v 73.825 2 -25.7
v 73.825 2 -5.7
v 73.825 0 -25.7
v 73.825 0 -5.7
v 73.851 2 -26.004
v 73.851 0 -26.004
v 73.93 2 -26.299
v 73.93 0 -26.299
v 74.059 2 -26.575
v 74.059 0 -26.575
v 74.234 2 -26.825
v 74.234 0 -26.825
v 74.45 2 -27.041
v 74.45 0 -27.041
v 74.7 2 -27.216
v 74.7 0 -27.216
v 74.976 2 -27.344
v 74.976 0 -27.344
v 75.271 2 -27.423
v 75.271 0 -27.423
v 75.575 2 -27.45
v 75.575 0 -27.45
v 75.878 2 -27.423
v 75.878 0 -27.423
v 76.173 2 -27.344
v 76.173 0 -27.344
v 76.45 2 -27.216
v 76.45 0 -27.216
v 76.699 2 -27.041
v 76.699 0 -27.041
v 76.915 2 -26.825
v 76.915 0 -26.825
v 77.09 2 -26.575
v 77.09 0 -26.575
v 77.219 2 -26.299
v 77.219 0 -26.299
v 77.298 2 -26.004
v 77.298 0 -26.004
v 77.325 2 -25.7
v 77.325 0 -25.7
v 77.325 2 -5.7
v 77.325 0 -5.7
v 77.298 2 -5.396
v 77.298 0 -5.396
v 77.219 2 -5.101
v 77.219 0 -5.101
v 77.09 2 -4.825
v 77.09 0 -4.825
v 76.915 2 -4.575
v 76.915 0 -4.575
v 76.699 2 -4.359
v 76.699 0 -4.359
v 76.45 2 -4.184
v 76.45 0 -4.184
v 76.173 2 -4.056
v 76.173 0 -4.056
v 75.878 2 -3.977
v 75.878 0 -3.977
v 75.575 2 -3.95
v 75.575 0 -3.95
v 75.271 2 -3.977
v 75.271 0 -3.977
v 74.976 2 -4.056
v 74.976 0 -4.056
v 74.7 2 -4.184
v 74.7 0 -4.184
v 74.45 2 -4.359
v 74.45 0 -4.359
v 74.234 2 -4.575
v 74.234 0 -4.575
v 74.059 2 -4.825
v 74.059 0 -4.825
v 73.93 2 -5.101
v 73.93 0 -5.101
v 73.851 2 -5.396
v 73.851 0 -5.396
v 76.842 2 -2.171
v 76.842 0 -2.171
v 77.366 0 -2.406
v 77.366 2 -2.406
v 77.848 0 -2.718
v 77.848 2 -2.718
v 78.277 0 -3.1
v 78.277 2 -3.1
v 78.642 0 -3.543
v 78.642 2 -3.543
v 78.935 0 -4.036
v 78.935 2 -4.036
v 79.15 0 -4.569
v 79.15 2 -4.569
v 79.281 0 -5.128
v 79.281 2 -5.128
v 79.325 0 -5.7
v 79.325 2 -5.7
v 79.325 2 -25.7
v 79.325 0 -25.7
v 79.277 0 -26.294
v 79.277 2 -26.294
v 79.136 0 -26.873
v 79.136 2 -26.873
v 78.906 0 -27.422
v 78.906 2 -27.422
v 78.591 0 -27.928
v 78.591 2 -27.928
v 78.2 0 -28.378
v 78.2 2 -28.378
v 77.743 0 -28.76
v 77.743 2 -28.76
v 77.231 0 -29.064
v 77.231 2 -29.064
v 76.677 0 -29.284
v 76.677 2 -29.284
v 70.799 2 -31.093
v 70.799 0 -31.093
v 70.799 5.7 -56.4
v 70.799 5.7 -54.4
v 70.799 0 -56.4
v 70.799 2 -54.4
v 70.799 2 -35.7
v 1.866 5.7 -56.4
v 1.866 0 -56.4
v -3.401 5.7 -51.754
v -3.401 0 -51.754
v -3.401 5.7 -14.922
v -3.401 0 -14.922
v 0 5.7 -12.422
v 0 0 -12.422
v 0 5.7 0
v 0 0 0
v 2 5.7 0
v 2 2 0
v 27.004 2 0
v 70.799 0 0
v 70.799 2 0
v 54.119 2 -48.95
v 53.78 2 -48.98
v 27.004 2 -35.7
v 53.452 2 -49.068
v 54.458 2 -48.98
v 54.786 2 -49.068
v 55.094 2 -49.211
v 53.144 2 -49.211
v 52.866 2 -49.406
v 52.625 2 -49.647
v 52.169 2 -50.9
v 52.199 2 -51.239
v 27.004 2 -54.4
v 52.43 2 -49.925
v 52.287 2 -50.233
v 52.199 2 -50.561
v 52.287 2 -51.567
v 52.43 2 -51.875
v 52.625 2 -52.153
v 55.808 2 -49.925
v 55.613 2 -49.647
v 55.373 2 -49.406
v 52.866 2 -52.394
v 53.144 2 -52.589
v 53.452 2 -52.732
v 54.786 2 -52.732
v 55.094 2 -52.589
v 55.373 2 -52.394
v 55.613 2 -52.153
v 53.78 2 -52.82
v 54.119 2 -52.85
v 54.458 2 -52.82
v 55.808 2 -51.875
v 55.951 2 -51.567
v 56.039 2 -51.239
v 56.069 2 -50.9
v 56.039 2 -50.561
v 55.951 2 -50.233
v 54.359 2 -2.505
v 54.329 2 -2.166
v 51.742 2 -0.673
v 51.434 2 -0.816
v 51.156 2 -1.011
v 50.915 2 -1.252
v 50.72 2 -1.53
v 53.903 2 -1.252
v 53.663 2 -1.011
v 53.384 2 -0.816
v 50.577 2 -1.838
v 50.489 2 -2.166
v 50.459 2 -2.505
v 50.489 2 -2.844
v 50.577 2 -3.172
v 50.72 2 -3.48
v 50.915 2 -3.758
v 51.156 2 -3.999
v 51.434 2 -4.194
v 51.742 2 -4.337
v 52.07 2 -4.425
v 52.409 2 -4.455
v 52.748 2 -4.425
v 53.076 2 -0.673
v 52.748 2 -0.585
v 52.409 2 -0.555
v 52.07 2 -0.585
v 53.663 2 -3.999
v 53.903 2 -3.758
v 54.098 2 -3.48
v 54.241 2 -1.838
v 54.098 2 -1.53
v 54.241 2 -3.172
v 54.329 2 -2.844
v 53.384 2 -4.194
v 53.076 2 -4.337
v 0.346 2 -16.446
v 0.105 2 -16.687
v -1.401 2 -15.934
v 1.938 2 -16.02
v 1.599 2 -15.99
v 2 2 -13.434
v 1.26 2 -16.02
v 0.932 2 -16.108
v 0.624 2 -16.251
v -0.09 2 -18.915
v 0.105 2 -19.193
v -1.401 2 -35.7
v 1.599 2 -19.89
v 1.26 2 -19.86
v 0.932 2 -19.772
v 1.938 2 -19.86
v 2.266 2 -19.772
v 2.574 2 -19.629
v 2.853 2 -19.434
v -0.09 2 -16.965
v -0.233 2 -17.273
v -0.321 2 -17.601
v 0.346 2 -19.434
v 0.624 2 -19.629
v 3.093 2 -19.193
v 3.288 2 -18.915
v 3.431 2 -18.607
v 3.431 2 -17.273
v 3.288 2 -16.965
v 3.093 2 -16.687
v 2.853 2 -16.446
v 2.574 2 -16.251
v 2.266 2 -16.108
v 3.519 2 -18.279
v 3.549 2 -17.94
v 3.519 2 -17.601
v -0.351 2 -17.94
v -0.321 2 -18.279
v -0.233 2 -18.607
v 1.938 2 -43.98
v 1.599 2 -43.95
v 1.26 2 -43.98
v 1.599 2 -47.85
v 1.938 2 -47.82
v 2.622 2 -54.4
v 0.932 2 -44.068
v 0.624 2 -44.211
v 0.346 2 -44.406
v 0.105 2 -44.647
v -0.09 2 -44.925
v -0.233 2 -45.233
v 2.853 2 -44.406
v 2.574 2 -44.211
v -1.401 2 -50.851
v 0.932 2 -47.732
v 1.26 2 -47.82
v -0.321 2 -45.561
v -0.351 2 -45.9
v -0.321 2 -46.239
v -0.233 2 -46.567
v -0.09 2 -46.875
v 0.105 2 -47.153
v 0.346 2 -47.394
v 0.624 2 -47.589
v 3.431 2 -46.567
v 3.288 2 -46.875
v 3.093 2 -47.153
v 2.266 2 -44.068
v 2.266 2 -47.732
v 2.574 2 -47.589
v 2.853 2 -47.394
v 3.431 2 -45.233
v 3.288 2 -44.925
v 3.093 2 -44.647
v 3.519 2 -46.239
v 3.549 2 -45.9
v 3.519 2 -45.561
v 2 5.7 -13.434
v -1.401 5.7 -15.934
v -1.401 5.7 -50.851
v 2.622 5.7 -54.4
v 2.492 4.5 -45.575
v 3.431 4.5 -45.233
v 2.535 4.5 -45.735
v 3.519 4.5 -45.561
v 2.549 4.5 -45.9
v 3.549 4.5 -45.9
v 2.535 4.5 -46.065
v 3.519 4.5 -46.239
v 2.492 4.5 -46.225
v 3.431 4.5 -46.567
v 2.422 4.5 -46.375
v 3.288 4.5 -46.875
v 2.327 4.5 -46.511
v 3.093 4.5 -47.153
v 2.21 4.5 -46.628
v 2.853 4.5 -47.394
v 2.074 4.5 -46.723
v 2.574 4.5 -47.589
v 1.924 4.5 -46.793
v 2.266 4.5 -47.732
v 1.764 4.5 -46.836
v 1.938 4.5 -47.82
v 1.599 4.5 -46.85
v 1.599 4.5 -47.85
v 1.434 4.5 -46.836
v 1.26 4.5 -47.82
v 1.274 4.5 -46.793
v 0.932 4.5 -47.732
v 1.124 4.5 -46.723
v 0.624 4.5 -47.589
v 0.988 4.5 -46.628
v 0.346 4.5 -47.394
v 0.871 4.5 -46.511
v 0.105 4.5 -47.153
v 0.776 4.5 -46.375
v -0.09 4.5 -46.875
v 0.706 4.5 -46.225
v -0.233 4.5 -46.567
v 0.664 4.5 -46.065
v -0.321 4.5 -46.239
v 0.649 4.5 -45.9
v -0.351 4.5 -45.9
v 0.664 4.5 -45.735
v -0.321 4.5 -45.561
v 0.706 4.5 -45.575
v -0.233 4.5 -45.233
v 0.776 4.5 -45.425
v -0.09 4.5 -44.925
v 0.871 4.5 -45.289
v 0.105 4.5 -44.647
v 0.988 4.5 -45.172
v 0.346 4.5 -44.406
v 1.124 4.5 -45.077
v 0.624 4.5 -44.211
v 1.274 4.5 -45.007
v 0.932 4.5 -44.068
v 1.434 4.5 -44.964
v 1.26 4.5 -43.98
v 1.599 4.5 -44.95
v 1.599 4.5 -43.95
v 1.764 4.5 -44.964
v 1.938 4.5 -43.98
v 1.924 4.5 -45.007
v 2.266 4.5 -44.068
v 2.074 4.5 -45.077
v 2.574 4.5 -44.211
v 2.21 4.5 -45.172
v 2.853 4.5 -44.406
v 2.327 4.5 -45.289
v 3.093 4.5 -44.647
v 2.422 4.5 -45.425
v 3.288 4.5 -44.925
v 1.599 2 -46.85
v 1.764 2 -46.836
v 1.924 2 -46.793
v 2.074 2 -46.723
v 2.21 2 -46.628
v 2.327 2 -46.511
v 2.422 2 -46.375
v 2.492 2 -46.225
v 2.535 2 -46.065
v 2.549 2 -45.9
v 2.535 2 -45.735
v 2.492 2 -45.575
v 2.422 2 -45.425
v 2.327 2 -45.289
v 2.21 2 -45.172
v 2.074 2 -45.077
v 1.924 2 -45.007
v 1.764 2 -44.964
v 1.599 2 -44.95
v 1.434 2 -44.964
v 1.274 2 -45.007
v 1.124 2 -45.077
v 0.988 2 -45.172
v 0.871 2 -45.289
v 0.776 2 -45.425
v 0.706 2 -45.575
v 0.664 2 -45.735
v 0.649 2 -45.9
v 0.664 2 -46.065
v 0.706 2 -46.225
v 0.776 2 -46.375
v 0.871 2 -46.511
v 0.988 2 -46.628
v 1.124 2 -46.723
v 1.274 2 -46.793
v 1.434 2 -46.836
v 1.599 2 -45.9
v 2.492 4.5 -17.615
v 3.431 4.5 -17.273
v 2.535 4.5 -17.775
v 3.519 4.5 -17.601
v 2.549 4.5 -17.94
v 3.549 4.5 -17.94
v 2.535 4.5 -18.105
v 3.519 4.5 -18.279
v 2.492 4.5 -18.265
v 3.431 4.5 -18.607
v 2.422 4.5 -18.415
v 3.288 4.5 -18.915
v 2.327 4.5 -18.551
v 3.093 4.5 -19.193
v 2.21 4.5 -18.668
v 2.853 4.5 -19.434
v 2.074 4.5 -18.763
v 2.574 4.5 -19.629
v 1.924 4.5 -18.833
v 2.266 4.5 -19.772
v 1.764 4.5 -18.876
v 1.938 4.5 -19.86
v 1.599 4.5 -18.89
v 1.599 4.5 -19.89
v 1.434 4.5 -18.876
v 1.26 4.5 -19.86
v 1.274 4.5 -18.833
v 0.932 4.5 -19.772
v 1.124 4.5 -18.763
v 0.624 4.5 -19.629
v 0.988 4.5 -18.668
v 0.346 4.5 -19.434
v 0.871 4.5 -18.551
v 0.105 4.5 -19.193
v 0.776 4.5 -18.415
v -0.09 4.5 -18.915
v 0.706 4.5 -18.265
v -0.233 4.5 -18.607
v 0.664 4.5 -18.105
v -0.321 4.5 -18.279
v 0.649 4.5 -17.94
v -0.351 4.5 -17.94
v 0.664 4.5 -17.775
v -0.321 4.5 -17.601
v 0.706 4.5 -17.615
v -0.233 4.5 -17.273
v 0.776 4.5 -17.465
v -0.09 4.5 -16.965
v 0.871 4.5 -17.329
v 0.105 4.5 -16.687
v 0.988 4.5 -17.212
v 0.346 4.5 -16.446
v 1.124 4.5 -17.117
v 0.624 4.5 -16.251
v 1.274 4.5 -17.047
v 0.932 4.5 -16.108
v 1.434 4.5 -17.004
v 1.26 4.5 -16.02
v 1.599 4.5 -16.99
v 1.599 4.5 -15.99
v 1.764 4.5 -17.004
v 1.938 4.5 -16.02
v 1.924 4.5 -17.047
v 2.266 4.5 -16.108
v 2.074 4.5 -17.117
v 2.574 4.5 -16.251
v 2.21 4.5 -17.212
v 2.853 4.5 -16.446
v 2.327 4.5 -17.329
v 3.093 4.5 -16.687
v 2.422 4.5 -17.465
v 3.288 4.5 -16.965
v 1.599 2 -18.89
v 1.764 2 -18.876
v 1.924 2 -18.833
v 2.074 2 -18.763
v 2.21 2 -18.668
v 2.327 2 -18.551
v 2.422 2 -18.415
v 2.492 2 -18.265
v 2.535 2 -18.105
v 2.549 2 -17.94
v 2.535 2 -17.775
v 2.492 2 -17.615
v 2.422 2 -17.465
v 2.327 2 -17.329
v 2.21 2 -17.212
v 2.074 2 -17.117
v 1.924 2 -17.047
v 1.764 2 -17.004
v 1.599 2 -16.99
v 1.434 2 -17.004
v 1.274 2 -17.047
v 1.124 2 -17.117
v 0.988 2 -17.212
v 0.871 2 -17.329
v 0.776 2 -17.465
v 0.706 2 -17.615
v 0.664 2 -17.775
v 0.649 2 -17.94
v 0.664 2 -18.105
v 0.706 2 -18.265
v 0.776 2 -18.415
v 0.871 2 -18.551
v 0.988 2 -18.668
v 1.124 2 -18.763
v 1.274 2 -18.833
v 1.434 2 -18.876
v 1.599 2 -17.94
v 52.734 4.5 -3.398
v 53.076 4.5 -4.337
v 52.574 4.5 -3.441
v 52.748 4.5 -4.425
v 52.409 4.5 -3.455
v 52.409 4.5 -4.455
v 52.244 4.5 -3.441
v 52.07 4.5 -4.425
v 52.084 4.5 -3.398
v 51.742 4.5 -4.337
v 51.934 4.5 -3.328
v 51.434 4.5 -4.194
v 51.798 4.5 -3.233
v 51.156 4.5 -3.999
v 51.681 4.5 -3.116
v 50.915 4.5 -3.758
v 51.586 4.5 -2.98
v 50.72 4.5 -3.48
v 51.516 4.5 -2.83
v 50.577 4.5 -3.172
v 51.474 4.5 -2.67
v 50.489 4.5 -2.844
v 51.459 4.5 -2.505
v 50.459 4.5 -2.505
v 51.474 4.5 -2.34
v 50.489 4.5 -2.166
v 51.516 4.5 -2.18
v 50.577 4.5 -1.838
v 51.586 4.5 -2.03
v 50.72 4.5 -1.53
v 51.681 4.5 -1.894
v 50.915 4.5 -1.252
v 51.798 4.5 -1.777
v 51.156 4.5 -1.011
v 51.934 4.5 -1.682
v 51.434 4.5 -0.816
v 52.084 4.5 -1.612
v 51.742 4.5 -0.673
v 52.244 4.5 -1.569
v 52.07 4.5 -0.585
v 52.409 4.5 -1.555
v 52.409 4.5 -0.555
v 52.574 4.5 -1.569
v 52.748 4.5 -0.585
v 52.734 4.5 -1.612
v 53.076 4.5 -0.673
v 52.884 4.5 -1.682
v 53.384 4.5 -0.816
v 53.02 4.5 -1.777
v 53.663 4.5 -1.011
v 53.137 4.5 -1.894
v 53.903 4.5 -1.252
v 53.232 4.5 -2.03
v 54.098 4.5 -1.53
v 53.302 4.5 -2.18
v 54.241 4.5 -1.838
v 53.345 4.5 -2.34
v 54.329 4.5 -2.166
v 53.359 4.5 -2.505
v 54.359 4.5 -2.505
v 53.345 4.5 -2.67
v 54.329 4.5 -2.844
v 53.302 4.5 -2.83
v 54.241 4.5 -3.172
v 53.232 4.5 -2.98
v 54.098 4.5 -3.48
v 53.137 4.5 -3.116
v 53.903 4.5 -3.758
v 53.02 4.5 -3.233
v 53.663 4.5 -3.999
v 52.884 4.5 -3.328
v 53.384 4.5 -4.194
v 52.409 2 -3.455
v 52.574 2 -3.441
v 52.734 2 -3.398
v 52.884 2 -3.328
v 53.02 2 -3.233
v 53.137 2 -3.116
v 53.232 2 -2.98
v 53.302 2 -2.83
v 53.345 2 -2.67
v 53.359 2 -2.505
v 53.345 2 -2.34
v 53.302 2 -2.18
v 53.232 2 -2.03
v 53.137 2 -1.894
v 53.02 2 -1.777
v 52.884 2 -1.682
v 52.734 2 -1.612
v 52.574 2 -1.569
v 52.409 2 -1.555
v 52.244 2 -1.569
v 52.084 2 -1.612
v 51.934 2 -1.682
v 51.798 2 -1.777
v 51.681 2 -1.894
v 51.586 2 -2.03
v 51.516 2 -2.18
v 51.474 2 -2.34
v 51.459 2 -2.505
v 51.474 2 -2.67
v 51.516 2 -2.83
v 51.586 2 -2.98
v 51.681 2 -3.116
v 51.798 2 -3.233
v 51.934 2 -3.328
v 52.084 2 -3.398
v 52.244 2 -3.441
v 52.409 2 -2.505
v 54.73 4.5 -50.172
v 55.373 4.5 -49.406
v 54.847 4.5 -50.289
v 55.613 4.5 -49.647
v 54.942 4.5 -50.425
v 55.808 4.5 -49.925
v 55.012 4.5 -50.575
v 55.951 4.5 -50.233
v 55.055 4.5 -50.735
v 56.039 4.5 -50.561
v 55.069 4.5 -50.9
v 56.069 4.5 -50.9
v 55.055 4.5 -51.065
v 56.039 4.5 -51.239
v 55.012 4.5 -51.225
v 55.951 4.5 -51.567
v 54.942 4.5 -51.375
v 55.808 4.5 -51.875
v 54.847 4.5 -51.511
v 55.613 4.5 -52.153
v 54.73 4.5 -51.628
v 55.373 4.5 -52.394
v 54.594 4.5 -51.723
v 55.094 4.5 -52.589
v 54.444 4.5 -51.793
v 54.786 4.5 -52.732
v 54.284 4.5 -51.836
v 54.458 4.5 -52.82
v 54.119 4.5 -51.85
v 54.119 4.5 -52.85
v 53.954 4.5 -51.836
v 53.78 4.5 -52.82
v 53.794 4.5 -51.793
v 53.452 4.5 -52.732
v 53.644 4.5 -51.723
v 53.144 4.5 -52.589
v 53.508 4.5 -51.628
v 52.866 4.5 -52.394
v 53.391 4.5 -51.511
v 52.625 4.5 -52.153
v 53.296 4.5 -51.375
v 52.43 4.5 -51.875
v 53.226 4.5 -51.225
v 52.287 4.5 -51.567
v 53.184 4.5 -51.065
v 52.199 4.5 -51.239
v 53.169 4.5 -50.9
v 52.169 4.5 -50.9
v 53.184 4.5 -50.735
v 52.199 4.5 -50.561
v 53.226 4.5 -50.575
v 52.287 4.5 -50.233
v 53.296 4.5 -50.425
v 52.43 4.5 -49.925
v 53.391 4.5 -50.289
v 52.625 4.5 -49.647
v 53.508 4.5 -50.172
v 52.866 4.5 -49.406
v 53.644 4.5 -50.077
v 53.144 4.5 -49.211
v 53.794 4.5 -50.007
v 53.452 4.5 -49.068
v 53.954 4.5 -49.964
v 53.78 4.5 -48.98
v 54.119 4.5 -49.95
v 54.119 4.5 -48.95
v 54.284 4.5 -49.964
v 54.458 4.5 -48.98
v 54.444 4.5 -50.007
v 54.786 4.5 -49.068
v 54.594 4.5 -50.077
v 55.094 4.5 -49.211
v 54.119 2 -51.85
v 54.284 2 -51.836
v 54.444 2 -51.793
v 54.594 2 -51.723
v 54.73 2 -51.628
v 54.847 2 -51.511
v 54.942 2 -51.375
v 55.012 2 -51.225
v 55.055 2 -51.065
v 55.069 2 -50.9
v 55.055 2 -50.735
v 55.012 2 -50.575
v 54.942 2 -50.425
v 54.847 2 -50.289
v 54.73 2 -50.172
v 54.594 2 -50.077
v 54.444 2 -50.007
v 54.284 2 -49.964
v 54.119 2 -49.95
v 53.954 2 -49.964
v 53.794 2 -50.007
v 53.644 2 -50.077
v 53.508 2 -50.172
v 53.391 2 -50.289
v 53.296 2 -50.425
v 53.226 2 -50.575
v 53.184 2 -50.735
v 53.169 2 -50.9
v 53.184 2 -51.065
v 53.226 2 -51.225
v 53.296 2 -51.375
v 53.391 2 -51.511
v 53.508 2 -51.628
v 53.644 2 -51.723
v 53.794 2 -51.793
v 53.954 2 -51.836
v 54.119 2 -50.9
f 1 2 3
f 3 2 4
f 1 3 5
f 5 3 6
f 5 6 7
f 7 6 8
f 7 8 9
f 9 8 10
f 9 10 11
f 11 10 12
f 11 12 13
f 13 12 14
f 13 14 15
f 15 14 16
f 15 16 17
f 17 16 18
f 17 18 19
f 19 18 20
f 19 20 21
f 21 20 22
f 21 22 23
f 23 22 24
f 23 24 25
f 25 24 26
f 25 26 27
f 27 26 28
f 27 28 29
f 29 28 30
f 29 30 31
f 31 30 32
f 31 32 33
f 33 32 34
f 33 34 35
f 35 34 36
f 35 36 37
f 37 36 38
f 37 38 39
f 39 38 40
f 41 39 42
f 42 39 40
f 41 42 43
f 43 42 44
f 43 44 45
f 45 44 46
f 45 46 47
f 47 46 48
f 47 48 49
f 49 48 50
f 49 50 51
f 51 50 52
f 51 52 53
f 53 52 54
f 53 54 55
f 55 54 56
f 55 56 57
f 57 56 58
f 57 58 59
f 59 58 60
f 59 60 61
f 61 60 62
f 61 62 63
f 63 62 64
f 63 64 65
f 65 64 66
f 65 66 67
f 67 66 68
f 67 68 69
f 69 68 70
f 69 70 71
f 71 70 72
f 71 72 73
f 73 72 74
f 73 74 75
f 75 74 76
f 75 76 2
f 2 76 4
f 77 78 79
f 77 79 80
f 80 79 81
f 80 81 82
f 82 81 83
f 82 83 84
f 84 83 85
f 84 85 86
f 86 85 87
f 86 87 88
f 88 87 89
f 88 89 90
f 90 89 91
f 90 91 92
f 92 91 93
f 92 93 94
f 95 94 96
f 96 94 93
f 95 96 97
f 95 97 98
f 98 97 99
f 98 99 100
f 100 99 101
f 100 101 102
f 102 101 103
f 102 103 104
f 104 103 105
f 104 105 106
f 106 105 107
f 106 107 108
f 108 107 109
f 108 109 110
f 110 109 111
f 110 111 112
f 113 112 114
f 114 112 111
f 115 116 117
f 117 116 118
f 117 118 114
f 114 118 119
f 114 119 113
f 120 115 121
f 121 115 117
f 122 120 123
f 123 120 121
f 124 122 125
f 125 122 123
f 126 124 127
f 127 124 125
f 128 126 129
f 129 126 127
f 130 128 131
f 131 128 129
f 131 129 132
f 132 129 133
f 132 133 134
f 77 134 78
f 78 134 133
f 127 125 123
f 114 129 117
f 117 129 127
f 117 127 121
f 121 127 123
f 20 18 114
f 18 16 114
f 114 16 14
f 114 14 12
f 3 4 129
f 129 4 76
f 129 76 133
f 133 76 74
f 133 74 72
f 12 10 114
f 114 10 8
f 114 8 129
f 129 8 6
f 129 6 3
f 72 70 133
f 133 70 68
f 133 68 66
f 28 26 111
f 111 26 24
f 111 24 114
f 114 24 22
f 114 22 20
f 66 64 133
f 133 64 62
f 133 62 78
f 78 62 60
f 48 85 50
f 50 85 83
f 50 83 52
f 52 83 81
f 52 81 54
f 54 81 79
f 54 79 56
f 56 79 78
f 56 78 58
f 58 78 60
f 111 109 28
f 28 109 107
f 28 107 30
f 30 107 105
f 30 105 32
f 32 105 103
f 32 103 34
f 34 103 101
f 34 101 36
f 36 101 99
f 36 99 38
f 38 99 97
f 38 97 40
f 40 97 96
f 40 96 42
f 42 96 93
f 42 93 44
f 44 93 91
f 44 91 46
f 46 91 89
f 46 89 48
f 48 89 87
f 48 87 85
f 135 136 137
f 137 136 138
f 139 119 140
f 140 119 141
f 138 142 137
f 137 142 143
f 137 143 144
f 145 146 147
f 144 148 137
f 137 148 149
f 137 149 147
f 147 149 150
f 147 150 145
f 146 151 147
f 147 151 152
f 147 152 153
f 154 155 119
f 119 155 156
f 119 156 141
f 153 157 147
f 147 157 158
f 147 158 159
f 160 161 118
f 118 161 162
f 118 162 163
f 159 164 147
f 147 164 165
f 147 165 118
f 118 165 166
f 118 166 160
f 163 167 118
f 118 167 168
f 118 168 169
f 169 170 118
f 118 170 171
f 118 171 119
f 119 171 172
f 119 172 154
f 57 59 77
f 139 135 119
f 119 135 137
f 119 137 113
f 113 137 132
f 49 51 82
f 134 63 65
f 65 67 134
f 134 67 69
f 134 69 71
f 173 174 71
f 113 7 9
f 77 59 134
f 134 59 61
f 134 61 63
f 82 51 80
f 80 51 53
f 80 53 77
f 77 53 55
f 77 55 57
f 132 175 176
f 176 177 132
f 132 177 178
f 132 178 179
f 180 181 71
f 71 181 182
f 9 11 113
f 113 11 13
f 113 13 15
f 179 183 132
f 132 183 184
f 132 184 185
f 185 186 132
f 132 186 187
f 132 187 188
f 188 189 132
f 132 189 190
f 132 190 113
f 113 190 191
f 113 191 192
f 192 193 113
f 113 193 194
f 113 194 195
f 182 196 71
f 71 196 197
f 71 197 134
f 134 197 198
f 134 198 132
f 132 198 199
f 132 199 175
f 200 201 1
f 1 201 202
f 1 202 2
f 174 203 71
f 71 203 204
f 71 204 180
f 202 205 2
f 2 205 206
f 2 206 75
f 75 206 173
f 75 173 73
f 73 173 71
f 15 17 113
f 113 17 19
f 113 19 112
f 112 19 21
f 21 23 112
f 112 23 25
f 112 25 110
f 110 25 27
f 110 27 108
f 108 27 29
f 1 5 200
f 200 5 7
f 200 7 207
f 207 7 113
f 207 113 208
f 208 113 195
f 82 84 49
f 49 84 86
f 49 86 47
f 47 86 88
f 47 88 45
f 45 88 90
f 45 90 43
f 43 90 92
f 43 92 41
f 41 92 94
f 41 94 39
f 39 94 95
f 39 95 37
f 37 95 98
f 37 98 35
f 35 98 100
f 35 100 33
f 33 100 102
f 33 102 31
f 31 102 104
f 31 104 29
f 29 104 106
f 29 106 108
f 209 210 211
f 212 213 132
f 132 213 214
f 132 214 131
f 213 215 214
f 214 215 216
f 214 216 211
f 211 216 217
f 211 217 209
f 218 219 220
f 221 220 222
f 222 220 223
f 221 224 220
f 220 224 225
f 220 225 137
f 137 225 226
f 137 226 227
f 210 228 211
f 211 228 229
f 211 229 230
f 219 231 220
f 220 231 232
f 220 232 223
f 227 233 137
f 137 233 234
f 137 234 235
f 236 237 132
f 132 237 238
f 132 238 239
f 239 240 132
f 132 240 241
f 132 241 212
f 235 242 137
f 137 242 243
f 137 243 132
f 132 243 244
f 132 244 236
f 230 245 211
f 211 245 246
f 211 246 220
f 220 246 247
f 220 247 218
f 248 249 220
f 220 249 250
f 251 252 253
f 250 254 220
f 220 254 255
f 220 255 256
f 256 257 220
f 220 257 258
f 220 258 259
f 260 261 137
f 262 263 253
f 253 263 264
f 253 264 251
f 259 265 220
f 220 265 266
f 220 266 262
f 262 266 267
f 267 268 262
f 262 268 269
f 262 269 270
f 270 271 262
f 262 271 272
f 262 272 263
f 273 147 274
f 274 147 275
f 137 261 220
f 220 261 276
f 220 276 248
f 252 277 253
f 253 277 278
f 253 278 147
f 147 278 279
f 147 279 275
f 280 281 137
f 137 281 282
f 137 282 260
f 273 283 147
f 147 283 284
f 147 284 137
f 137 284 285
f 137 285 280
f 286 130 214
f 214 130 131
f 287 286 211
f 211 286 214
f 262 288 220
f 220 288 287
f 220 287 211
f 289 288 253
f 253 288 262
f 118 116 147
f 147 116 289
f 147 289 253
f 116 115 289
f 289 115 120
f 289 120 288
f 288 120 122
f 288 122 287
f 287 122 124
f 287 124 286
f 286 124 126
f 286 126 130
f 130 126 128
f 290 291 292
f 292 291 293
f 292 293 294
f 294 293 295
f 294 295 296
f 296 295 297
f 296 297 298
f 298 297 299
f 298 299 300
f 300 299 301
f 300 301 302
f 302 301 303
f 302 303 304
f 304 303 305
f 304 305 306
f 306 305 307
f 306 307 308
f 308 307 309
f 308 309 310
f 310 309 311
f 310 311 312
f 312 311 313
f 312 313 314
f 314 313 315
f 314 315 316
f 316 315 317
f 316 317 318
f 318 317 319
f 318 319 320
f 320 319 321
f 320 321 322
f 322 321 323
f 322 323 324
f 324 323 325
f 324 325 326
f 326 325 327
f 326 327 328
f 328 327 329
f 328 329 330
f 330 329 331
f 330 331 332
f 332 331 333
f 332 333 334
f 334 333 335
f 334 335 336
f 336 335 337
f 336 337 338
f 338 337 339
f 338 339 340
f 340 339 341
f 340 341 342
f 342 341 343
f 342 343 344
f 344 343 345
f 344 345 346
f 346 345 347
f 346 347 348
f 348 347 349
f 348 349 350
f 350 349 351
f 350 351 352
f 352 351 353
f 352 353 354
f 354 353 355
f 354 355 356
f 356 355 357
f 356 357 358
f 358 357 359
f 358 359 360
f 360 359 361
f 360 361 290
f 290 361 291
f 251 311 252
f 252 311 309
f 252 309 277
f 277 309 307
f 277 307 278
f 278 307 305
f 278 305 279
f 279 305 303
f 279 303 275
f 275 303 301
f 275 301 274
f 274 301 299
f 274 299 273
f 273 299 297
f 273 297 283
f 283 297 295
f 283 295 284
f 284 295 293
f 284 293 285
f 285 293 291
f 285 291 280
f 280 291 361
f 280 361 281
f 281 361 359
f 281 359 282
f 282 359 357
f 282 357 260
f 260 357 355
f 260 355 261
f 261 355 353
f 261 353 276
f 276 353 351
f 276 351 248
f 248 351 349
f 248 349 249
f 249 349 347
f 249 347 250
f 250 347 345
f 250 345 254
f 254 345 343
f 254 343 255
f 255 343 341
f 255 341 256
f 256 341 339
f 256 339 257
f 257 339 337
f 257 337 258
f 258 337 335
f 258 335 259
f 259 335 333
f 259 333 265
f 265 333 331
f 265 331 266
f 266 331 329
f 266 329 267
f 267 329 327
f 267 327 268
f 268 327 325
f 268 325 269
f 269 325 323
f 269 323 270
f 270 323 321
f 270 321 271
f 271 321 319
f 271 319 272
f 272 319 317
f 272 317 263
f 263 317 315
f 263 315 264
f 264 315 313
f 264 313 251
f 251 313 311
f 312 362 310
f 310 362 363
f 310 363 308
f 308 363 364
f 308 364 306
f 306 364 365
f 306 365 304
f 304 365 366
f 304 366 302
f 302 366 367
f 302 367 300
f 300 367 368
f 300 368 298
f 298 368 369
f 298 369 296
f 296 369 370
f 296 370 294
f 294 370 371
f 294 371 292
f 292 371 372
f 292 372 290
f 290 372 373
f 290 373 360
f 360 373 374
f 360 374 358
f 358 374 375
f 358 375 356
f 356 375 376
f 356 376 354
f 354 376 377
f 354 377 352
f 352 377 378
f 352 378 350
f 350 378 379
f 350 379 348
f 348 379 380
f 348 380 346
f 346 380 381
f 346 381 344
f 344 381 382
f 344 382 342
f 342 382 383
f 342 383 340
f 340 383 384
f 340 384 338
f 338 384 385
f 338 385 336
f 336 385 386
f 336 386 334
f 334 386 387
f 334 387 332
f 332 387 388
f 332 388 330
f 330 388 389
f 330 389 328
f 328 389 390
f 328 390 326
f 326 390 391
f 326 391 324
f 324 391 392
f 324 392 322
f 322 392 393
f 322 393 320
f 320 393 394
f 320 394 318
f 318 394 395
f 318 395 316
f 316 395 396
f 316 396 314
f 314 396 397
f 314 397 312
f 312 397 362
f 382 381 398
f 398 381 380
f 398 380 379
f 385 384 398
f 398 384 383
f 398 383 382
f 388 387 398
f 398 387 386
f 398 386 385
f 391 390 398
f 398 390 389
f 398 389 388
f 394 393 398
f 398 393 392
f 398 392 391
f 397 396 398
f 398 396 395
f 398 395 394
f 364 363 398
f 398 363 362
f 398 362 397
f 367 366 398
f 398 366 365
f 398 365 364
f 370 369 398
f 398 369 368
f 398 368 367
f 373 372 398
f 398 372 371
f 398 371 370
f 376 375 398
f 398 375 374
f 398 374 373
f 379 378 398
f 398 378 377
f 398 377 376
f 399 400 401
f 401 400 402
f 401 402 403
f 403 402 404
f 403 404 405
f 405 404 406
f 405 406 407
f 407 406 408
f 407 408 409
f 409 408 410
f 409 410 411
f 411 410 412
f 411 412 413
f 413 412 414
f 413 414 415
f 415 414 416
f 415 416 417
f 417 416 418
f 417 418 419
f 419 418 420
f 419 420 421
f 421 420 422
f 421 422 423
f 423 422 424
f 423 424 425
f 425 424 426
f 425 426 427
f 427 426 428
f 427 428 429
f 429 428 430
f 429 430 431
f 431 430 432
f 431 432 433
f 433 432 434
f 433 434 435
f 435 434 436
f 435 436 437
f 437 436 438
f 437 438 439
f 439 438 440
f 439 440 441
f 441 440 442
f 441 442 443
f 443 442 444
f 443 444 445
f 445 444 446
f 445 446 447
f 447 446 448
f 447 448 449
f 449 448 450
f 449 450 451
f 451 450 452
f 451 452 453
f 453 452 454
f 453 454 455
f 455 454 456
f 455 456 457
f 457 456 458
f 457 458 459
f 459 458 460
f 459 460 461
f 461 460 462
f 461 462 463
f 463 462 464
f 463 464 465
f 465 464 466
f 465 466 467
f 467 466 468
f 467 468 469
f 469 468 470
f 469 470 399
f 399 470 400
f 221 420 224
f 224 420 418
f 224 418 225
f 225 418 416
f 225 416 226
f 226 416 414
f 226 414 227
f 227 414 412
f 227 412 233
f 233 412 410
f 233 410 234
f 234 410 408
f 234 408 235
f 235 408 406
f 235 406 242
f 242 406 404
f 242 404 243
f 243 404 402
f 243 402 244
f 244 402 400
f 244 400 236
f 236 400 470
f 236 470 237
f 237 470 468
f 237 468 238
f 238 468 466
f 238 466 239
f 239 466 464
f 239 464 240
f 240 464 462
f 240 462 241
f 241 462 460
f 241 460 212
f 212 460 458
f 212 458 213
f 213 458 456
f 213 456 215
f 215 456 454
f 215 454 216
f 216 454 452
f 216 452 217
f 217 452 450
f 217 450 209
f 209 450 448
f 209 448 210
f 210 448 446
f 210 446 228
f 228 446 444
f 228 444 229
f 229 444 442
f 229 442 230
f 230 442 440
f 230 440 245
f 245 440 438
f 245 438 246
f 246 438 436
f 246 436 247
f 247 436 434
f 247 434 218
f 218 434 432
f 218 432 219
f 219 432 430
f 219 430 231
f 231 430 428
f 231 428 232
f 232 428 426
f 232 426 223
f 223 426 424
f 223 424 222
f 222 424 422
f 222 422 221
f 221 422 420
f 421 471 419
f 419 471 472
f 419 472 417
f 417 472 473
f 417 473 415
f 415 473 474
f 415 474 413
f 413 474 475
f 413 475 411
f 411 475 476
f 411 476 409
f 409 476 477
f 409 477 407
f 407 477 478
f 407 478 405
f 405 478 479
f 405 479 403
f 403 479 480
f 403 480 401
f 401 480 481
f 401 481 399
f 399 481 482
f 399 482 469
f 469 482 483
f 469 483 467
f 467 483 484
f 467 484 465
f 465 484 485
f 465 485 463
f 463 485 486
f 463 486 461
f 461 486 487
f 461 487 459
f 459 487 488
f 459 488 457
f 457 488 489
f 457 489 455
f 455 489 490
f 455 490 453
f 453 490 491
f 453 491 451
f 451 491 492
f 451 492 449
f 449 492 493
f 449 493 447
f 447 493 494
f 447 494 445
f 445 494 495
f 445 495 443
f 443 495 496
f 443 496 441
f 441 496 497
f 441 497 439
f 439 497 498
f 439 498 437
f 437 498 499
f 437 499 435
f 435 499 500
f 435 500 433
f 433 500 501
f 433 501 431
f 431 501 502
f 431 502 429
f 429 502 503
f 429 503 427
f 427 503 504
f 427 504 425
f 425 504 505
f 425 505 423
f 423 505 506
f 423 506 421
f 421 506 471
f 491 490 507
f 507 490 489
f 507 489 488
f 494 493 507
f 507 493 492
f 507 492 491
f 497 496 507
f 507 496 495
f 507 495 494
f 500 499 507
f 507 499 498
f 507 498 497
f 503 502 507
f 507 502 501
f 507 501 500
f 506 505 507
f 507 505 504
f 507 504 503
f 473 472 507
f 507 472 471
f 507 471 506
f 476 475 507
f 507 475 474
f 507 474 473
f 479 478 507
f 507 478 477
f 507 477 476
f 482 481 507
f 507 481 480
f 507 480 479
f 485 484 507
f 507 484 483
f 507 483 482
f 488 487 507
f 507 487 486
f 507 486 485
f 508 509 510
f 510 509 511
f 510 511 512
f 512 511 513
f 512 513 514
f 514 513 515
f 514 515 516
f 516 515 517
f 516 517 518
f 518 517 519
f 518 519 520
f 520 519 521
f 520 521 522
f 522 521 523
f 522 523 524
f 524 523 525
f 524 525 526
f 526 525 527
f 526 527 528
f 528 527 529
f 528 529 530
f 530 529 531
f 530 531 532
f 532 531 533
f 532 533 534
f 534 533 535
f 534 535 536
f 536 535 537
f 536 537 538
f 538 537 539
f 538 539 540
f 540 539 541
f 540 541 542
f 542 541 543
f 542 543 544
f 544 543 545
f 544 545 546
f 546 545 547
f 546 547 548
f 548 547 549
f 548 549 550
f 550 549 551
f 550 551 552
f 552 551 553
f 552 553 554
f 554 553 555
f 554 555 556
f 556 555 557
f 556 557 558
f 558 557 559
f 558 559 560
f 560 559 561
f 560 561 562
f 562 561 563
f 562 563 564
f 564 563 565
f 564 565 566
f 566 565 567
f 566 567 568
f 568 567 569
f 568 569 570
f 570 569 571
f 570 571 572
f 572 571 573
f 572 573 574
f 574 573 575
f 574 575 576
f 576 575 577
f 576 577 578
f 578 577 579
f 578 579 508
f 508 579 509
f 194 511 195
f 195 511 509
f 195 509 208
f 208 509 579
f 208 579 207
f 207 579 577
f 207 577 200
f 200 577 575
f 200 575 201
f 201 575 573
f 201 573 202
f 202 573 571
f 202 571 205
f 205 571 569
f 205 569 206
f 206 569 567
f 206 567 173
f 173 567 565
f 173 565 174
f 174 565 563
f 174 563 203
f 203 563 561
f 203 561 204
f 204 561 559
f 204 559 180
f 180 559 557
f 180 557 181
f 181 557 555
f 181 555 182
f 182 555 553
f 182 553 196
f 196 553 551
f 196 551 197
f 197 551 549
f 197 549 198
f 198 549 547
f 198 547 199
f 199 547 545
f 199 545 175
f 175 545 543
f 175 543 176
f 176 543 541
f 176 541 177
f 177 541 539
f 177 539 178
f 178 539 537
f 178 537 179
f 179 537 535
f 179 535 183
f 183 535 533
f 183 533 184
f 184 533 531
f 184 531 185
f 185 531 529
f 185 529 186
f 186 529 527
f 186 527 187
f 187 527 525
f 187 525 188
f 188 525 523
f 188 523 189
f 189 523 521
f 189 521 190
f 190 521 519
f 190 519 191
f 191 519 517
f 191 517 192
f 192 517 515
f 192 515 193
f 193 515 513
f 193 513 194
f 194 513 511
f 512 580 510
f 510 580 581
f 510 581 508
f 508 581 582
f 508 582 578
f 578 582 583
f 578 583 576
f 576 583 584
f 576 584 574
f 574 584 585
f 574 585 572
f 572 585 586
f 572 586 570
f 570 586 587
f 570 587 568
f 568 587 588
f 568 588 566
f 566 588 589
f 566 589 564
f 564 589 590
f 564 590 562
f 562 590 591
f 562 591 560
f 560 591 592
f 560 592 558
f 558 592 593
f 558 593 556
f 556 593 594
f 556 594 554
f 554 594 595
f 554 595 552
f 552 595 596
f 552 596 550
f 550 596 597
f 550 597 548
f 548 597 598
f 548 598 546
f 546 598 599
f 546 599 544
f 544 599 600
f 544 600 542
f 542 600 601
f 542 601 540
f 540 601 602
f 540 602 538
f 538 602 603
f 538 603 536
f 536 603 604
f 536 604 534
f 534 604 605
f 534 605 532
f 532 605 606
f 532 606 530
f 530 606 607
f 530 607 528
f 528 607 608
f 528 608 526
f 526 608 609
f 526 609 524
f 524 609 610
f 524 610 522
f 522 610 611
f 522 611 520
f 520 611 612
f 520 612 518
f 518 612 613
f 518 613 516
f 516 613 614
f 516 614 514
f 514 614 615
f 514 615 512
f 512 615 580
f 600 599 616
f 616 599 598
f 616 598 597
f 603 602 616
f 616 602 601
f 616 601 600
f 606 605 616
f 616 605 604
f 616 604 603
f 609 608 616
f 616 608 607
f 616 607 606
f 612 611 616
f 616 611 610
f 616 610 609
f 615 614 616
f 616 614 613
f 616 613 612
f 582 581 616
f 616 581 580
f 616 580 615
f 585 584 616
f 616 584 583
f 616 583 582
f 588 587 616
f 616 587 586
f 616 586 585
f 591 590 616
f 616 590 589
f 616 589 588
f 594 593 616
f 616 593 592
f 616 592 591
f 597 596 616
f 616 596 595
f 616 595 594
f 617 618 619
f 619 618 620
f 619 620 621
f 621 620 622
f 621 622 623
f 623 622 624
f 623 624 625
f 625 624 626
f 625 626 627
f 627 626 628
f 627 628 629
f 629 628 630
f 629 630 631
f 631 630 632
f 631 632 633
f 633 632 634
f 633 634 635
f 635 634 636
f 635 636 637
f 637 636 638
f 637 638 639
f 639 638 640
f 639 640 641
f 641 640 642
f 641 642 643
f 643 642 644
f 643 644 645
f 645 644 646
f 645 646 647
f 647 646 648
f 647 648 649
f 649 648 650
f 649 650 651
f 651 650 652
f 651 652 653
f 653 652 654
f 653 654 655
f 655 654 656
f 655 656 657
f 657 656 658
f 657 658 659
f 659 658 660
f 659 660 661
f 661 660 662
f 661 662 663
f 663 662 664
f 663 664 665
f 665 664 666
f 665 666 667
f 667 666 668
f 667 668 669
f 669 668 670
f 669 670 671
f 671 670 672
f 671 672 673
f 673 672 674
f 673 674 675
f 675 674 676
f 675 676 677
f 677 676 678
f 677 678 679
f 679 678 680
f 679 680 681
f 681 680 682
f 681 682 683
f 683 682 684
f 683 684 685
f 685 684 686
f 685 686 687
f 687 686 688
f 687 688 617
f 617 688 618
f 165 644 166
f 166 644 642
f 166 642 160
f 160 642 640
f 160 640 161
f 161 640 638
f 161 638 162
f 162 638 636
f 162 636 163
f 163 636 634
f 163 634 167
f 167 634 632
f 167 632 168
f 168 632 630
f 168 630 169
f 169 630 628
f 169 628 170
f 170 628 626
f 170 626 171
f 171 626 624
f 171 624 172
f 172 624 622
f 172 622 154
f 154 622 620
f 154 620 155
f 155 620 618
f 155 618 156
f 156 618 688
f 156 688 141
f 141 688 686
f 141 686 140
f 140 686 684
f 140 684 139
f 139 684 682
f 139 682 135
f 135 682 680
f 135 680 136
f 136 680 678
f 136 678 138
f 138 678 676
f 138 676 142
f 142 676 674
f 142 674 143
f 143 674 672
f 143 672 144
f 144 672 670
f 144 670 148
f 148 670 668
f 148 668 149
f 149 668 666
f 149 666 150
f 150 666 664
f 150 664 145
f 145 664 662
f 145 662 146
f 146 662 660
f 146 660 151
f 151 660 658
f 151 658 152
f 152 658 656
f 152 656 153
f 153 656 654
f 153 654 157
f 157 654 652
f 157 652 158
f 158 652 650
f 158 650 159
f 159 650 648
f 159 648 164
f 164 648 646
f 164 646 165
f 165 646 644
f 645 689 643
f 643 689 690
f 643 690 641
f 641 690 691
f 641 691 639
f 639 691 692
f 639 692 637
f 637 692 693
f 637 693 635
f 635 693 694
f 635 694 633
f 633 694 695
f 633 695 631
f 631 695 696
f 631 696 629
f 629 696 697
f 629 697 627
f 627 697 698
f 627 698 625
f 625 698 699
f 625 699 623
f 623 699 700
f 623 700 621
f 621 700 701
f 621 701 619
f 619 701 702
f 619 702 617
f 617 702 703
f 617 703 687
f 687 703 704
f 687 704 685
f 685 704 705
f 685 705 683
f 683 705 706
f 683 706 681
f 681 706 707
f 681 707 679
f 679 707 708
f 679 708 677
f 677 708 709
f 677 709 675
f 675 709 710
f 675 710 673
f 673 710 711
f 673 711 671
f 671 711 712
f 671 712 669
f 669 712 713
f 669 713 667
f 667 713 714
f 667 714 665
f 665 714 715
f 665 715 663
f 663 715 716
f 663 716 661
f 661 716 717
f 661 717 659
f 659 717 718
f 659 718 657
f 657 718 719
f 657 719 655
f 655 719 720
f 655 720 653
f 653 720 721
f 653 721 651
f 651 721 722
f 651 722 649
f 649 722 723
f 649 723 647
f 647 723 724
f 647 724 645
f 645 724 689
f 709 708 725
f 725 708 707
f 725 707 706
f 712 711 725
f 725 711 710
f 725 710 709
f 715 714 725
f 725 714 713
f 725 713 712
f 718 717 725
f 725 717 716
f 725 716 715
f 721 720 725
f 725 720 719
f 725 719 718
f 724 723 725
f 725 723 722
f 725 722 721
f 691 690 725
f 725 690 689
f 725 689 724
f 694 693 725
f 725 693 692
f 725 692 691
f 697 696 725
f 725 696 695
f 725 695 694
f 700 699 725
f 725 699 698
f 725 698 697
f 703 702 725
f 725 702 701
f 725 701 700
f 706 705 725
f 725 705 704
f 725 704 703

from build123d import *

# Parameters (mm, degrees)
SALIENTE_EXTRUIR2_DEPTH = 2
SALIENTE_EXTRUIR3_DEPTH = 3.7
CROQUIS3_R              = 1.95
CROQUIS3_R_2            = 0.95
SALIENTE_EXTRUIR4_DEPTH = 2.5


with BuildPart() as part:
    # Croquis1 → Saliente-Extruir2 (new body)
    with BuildSketch(Plane(origin=(0, 0, 0), x_dir=(1, 0, 0), z_dir=(0, 1, 0))):
        with BuildLine():
            Line((70.799071053, 31.092568315), (70.799071053, 56.4))
            Line((70.799071053, 56.4), (1.865918726, 56.4))
            Line((1.865918726, 56.4), (-3.400928947, 51.75405083))
            Line((-3.400928947, 51.75405083), (-3.400928947, 14.921940047))
            Line((-3.400928947, 14.921940047), (0, 12.421940047))
            Line((0, 12.421940047), (0, 0))
            Line((0, 0), (70.799071053, 0))
            Line((70.799071053, 0), (76.842269578, 2.170786153))
            ThreePointArc((76.842269578, 2.170786153), (78.641822821, 3.542629227), (79.324535526, 5.7))
            Line((79.324535526, 5.7), (79.324535526, 25.7))
            ThreePointArc((79.324535526, 25.7), (78.590944159, 27.927953986), (76.677186746, 29.284223805))
            Line((76.677186746, 29.284223805), (70.799071053, 31.092568315))
        make_face()
        with BuildLine():
            Line((77.324535526, 25.7), (77.324535526, 5.7))
            ThreePointArc((77.324535526, 5.7), (75.574535526, 3.95), (73.824535526, 5.7))
            Line((73.824535526, 5.7), (73.824535526, 25.7))
            ThreePointArc((73.824535526, 25.7), (75.574535526, 27.45), (77.324535526, 25.7))
        make_face(mode=Mode.SUBTRACT)
    extrude(amount=SALIENTE_EXTRUIR2_DEPTH)

    # Croquis2 → Saliente-Extruir3 (add)
    with BuildSketch(Plane(origin=(0, 2, 0), x_dir=(1, 0, 0), z_dir=(0, 1, 0))):
        Polygon((70.799071053, 54.4), (2.621972909, 54.4), (-1.400928947, 50.851350277), (-1.400928947, 15.933980016), (2, 13.433980016), (2, 0), (0, 0), (0, 12.421940047), (-3.400928947, 14.921940047), (-3.400928947, 51.75405083), (1.865918726, 56.4), (70.799071053, 56.4), align=None)
    extrude(amount=SALIENTE_EXTRUIR3_DEPTH)

    # Croquis3 → Saliente-Extruir4 (add)
    # profile 1 of 4: a face of its own
    with BuildSketch(Plane(origin=(0, 2, 0), x_dir=(1, 0, 0), z_dir=(0, 1, 0))):
        with Locations(Location((1.599071053, 45.9, 0), (0, 0, 270))):
            Circle(CROQUIS3_R)
        with Locations(Location((1.599071053, 45.9, 0), (0, 0, 270))):
            Circle(CROQUIS3_R_2, mode=Mode.SUBTRACT)
    # profile 2 of 4: a face of its own
    with BuildSketch(Plane(origin=(0, 2, 0), x_dir=(1, 0, 0), z_dir=(0, 1, 0))):
        with Locations(Location((1.599071053, 17.94, 0), (0, 0, 270))):
            Circle(CROQUIS3_R)
        with Locations(Location((1.599071053, 17.94, 0), (0, 0, 270))):
            Circle(CROQUIS3_R_2, mode=Mode.SUBTRACT)
    # profile 3 of 4: a face of its own
    with BuildSketch(Plane(origin=(0, 2, 0), x_dir=(1, 0, 0), z_dir=(0, 1, 0))):
        with Locations(Location((52.409071053, 2.505, 0), (0, 0, 270))):
            Circle(CROQUIS3_R)
        with Locations(Location((52.409071053, 2.505, 0), (0, 0, 270))):
            Circle(CROQUIS3_R_2, mode=Mode.SUBTRACT)
    # profile 4 of 4: a face of its own
    with BuildSketch(Plane(origin=(0, 2, 0), x_dir=(1, 0, 0), z_dir=(0, 1, 0))):
        with Locations(Location((54.119071053, 50.9, 0), (0, 0, 270))):
            Circle(CROQUIS3_R)
        with Locations(Location((54.119071053, 50.9, 0), (0, 0, 270))):
            Circle(CROQUIS3_R_2, mode=Mode.SUBTRACT)
    extrude(amount=SALIENTE_EXTRUIR4_DEPTH)


solid = part.part
